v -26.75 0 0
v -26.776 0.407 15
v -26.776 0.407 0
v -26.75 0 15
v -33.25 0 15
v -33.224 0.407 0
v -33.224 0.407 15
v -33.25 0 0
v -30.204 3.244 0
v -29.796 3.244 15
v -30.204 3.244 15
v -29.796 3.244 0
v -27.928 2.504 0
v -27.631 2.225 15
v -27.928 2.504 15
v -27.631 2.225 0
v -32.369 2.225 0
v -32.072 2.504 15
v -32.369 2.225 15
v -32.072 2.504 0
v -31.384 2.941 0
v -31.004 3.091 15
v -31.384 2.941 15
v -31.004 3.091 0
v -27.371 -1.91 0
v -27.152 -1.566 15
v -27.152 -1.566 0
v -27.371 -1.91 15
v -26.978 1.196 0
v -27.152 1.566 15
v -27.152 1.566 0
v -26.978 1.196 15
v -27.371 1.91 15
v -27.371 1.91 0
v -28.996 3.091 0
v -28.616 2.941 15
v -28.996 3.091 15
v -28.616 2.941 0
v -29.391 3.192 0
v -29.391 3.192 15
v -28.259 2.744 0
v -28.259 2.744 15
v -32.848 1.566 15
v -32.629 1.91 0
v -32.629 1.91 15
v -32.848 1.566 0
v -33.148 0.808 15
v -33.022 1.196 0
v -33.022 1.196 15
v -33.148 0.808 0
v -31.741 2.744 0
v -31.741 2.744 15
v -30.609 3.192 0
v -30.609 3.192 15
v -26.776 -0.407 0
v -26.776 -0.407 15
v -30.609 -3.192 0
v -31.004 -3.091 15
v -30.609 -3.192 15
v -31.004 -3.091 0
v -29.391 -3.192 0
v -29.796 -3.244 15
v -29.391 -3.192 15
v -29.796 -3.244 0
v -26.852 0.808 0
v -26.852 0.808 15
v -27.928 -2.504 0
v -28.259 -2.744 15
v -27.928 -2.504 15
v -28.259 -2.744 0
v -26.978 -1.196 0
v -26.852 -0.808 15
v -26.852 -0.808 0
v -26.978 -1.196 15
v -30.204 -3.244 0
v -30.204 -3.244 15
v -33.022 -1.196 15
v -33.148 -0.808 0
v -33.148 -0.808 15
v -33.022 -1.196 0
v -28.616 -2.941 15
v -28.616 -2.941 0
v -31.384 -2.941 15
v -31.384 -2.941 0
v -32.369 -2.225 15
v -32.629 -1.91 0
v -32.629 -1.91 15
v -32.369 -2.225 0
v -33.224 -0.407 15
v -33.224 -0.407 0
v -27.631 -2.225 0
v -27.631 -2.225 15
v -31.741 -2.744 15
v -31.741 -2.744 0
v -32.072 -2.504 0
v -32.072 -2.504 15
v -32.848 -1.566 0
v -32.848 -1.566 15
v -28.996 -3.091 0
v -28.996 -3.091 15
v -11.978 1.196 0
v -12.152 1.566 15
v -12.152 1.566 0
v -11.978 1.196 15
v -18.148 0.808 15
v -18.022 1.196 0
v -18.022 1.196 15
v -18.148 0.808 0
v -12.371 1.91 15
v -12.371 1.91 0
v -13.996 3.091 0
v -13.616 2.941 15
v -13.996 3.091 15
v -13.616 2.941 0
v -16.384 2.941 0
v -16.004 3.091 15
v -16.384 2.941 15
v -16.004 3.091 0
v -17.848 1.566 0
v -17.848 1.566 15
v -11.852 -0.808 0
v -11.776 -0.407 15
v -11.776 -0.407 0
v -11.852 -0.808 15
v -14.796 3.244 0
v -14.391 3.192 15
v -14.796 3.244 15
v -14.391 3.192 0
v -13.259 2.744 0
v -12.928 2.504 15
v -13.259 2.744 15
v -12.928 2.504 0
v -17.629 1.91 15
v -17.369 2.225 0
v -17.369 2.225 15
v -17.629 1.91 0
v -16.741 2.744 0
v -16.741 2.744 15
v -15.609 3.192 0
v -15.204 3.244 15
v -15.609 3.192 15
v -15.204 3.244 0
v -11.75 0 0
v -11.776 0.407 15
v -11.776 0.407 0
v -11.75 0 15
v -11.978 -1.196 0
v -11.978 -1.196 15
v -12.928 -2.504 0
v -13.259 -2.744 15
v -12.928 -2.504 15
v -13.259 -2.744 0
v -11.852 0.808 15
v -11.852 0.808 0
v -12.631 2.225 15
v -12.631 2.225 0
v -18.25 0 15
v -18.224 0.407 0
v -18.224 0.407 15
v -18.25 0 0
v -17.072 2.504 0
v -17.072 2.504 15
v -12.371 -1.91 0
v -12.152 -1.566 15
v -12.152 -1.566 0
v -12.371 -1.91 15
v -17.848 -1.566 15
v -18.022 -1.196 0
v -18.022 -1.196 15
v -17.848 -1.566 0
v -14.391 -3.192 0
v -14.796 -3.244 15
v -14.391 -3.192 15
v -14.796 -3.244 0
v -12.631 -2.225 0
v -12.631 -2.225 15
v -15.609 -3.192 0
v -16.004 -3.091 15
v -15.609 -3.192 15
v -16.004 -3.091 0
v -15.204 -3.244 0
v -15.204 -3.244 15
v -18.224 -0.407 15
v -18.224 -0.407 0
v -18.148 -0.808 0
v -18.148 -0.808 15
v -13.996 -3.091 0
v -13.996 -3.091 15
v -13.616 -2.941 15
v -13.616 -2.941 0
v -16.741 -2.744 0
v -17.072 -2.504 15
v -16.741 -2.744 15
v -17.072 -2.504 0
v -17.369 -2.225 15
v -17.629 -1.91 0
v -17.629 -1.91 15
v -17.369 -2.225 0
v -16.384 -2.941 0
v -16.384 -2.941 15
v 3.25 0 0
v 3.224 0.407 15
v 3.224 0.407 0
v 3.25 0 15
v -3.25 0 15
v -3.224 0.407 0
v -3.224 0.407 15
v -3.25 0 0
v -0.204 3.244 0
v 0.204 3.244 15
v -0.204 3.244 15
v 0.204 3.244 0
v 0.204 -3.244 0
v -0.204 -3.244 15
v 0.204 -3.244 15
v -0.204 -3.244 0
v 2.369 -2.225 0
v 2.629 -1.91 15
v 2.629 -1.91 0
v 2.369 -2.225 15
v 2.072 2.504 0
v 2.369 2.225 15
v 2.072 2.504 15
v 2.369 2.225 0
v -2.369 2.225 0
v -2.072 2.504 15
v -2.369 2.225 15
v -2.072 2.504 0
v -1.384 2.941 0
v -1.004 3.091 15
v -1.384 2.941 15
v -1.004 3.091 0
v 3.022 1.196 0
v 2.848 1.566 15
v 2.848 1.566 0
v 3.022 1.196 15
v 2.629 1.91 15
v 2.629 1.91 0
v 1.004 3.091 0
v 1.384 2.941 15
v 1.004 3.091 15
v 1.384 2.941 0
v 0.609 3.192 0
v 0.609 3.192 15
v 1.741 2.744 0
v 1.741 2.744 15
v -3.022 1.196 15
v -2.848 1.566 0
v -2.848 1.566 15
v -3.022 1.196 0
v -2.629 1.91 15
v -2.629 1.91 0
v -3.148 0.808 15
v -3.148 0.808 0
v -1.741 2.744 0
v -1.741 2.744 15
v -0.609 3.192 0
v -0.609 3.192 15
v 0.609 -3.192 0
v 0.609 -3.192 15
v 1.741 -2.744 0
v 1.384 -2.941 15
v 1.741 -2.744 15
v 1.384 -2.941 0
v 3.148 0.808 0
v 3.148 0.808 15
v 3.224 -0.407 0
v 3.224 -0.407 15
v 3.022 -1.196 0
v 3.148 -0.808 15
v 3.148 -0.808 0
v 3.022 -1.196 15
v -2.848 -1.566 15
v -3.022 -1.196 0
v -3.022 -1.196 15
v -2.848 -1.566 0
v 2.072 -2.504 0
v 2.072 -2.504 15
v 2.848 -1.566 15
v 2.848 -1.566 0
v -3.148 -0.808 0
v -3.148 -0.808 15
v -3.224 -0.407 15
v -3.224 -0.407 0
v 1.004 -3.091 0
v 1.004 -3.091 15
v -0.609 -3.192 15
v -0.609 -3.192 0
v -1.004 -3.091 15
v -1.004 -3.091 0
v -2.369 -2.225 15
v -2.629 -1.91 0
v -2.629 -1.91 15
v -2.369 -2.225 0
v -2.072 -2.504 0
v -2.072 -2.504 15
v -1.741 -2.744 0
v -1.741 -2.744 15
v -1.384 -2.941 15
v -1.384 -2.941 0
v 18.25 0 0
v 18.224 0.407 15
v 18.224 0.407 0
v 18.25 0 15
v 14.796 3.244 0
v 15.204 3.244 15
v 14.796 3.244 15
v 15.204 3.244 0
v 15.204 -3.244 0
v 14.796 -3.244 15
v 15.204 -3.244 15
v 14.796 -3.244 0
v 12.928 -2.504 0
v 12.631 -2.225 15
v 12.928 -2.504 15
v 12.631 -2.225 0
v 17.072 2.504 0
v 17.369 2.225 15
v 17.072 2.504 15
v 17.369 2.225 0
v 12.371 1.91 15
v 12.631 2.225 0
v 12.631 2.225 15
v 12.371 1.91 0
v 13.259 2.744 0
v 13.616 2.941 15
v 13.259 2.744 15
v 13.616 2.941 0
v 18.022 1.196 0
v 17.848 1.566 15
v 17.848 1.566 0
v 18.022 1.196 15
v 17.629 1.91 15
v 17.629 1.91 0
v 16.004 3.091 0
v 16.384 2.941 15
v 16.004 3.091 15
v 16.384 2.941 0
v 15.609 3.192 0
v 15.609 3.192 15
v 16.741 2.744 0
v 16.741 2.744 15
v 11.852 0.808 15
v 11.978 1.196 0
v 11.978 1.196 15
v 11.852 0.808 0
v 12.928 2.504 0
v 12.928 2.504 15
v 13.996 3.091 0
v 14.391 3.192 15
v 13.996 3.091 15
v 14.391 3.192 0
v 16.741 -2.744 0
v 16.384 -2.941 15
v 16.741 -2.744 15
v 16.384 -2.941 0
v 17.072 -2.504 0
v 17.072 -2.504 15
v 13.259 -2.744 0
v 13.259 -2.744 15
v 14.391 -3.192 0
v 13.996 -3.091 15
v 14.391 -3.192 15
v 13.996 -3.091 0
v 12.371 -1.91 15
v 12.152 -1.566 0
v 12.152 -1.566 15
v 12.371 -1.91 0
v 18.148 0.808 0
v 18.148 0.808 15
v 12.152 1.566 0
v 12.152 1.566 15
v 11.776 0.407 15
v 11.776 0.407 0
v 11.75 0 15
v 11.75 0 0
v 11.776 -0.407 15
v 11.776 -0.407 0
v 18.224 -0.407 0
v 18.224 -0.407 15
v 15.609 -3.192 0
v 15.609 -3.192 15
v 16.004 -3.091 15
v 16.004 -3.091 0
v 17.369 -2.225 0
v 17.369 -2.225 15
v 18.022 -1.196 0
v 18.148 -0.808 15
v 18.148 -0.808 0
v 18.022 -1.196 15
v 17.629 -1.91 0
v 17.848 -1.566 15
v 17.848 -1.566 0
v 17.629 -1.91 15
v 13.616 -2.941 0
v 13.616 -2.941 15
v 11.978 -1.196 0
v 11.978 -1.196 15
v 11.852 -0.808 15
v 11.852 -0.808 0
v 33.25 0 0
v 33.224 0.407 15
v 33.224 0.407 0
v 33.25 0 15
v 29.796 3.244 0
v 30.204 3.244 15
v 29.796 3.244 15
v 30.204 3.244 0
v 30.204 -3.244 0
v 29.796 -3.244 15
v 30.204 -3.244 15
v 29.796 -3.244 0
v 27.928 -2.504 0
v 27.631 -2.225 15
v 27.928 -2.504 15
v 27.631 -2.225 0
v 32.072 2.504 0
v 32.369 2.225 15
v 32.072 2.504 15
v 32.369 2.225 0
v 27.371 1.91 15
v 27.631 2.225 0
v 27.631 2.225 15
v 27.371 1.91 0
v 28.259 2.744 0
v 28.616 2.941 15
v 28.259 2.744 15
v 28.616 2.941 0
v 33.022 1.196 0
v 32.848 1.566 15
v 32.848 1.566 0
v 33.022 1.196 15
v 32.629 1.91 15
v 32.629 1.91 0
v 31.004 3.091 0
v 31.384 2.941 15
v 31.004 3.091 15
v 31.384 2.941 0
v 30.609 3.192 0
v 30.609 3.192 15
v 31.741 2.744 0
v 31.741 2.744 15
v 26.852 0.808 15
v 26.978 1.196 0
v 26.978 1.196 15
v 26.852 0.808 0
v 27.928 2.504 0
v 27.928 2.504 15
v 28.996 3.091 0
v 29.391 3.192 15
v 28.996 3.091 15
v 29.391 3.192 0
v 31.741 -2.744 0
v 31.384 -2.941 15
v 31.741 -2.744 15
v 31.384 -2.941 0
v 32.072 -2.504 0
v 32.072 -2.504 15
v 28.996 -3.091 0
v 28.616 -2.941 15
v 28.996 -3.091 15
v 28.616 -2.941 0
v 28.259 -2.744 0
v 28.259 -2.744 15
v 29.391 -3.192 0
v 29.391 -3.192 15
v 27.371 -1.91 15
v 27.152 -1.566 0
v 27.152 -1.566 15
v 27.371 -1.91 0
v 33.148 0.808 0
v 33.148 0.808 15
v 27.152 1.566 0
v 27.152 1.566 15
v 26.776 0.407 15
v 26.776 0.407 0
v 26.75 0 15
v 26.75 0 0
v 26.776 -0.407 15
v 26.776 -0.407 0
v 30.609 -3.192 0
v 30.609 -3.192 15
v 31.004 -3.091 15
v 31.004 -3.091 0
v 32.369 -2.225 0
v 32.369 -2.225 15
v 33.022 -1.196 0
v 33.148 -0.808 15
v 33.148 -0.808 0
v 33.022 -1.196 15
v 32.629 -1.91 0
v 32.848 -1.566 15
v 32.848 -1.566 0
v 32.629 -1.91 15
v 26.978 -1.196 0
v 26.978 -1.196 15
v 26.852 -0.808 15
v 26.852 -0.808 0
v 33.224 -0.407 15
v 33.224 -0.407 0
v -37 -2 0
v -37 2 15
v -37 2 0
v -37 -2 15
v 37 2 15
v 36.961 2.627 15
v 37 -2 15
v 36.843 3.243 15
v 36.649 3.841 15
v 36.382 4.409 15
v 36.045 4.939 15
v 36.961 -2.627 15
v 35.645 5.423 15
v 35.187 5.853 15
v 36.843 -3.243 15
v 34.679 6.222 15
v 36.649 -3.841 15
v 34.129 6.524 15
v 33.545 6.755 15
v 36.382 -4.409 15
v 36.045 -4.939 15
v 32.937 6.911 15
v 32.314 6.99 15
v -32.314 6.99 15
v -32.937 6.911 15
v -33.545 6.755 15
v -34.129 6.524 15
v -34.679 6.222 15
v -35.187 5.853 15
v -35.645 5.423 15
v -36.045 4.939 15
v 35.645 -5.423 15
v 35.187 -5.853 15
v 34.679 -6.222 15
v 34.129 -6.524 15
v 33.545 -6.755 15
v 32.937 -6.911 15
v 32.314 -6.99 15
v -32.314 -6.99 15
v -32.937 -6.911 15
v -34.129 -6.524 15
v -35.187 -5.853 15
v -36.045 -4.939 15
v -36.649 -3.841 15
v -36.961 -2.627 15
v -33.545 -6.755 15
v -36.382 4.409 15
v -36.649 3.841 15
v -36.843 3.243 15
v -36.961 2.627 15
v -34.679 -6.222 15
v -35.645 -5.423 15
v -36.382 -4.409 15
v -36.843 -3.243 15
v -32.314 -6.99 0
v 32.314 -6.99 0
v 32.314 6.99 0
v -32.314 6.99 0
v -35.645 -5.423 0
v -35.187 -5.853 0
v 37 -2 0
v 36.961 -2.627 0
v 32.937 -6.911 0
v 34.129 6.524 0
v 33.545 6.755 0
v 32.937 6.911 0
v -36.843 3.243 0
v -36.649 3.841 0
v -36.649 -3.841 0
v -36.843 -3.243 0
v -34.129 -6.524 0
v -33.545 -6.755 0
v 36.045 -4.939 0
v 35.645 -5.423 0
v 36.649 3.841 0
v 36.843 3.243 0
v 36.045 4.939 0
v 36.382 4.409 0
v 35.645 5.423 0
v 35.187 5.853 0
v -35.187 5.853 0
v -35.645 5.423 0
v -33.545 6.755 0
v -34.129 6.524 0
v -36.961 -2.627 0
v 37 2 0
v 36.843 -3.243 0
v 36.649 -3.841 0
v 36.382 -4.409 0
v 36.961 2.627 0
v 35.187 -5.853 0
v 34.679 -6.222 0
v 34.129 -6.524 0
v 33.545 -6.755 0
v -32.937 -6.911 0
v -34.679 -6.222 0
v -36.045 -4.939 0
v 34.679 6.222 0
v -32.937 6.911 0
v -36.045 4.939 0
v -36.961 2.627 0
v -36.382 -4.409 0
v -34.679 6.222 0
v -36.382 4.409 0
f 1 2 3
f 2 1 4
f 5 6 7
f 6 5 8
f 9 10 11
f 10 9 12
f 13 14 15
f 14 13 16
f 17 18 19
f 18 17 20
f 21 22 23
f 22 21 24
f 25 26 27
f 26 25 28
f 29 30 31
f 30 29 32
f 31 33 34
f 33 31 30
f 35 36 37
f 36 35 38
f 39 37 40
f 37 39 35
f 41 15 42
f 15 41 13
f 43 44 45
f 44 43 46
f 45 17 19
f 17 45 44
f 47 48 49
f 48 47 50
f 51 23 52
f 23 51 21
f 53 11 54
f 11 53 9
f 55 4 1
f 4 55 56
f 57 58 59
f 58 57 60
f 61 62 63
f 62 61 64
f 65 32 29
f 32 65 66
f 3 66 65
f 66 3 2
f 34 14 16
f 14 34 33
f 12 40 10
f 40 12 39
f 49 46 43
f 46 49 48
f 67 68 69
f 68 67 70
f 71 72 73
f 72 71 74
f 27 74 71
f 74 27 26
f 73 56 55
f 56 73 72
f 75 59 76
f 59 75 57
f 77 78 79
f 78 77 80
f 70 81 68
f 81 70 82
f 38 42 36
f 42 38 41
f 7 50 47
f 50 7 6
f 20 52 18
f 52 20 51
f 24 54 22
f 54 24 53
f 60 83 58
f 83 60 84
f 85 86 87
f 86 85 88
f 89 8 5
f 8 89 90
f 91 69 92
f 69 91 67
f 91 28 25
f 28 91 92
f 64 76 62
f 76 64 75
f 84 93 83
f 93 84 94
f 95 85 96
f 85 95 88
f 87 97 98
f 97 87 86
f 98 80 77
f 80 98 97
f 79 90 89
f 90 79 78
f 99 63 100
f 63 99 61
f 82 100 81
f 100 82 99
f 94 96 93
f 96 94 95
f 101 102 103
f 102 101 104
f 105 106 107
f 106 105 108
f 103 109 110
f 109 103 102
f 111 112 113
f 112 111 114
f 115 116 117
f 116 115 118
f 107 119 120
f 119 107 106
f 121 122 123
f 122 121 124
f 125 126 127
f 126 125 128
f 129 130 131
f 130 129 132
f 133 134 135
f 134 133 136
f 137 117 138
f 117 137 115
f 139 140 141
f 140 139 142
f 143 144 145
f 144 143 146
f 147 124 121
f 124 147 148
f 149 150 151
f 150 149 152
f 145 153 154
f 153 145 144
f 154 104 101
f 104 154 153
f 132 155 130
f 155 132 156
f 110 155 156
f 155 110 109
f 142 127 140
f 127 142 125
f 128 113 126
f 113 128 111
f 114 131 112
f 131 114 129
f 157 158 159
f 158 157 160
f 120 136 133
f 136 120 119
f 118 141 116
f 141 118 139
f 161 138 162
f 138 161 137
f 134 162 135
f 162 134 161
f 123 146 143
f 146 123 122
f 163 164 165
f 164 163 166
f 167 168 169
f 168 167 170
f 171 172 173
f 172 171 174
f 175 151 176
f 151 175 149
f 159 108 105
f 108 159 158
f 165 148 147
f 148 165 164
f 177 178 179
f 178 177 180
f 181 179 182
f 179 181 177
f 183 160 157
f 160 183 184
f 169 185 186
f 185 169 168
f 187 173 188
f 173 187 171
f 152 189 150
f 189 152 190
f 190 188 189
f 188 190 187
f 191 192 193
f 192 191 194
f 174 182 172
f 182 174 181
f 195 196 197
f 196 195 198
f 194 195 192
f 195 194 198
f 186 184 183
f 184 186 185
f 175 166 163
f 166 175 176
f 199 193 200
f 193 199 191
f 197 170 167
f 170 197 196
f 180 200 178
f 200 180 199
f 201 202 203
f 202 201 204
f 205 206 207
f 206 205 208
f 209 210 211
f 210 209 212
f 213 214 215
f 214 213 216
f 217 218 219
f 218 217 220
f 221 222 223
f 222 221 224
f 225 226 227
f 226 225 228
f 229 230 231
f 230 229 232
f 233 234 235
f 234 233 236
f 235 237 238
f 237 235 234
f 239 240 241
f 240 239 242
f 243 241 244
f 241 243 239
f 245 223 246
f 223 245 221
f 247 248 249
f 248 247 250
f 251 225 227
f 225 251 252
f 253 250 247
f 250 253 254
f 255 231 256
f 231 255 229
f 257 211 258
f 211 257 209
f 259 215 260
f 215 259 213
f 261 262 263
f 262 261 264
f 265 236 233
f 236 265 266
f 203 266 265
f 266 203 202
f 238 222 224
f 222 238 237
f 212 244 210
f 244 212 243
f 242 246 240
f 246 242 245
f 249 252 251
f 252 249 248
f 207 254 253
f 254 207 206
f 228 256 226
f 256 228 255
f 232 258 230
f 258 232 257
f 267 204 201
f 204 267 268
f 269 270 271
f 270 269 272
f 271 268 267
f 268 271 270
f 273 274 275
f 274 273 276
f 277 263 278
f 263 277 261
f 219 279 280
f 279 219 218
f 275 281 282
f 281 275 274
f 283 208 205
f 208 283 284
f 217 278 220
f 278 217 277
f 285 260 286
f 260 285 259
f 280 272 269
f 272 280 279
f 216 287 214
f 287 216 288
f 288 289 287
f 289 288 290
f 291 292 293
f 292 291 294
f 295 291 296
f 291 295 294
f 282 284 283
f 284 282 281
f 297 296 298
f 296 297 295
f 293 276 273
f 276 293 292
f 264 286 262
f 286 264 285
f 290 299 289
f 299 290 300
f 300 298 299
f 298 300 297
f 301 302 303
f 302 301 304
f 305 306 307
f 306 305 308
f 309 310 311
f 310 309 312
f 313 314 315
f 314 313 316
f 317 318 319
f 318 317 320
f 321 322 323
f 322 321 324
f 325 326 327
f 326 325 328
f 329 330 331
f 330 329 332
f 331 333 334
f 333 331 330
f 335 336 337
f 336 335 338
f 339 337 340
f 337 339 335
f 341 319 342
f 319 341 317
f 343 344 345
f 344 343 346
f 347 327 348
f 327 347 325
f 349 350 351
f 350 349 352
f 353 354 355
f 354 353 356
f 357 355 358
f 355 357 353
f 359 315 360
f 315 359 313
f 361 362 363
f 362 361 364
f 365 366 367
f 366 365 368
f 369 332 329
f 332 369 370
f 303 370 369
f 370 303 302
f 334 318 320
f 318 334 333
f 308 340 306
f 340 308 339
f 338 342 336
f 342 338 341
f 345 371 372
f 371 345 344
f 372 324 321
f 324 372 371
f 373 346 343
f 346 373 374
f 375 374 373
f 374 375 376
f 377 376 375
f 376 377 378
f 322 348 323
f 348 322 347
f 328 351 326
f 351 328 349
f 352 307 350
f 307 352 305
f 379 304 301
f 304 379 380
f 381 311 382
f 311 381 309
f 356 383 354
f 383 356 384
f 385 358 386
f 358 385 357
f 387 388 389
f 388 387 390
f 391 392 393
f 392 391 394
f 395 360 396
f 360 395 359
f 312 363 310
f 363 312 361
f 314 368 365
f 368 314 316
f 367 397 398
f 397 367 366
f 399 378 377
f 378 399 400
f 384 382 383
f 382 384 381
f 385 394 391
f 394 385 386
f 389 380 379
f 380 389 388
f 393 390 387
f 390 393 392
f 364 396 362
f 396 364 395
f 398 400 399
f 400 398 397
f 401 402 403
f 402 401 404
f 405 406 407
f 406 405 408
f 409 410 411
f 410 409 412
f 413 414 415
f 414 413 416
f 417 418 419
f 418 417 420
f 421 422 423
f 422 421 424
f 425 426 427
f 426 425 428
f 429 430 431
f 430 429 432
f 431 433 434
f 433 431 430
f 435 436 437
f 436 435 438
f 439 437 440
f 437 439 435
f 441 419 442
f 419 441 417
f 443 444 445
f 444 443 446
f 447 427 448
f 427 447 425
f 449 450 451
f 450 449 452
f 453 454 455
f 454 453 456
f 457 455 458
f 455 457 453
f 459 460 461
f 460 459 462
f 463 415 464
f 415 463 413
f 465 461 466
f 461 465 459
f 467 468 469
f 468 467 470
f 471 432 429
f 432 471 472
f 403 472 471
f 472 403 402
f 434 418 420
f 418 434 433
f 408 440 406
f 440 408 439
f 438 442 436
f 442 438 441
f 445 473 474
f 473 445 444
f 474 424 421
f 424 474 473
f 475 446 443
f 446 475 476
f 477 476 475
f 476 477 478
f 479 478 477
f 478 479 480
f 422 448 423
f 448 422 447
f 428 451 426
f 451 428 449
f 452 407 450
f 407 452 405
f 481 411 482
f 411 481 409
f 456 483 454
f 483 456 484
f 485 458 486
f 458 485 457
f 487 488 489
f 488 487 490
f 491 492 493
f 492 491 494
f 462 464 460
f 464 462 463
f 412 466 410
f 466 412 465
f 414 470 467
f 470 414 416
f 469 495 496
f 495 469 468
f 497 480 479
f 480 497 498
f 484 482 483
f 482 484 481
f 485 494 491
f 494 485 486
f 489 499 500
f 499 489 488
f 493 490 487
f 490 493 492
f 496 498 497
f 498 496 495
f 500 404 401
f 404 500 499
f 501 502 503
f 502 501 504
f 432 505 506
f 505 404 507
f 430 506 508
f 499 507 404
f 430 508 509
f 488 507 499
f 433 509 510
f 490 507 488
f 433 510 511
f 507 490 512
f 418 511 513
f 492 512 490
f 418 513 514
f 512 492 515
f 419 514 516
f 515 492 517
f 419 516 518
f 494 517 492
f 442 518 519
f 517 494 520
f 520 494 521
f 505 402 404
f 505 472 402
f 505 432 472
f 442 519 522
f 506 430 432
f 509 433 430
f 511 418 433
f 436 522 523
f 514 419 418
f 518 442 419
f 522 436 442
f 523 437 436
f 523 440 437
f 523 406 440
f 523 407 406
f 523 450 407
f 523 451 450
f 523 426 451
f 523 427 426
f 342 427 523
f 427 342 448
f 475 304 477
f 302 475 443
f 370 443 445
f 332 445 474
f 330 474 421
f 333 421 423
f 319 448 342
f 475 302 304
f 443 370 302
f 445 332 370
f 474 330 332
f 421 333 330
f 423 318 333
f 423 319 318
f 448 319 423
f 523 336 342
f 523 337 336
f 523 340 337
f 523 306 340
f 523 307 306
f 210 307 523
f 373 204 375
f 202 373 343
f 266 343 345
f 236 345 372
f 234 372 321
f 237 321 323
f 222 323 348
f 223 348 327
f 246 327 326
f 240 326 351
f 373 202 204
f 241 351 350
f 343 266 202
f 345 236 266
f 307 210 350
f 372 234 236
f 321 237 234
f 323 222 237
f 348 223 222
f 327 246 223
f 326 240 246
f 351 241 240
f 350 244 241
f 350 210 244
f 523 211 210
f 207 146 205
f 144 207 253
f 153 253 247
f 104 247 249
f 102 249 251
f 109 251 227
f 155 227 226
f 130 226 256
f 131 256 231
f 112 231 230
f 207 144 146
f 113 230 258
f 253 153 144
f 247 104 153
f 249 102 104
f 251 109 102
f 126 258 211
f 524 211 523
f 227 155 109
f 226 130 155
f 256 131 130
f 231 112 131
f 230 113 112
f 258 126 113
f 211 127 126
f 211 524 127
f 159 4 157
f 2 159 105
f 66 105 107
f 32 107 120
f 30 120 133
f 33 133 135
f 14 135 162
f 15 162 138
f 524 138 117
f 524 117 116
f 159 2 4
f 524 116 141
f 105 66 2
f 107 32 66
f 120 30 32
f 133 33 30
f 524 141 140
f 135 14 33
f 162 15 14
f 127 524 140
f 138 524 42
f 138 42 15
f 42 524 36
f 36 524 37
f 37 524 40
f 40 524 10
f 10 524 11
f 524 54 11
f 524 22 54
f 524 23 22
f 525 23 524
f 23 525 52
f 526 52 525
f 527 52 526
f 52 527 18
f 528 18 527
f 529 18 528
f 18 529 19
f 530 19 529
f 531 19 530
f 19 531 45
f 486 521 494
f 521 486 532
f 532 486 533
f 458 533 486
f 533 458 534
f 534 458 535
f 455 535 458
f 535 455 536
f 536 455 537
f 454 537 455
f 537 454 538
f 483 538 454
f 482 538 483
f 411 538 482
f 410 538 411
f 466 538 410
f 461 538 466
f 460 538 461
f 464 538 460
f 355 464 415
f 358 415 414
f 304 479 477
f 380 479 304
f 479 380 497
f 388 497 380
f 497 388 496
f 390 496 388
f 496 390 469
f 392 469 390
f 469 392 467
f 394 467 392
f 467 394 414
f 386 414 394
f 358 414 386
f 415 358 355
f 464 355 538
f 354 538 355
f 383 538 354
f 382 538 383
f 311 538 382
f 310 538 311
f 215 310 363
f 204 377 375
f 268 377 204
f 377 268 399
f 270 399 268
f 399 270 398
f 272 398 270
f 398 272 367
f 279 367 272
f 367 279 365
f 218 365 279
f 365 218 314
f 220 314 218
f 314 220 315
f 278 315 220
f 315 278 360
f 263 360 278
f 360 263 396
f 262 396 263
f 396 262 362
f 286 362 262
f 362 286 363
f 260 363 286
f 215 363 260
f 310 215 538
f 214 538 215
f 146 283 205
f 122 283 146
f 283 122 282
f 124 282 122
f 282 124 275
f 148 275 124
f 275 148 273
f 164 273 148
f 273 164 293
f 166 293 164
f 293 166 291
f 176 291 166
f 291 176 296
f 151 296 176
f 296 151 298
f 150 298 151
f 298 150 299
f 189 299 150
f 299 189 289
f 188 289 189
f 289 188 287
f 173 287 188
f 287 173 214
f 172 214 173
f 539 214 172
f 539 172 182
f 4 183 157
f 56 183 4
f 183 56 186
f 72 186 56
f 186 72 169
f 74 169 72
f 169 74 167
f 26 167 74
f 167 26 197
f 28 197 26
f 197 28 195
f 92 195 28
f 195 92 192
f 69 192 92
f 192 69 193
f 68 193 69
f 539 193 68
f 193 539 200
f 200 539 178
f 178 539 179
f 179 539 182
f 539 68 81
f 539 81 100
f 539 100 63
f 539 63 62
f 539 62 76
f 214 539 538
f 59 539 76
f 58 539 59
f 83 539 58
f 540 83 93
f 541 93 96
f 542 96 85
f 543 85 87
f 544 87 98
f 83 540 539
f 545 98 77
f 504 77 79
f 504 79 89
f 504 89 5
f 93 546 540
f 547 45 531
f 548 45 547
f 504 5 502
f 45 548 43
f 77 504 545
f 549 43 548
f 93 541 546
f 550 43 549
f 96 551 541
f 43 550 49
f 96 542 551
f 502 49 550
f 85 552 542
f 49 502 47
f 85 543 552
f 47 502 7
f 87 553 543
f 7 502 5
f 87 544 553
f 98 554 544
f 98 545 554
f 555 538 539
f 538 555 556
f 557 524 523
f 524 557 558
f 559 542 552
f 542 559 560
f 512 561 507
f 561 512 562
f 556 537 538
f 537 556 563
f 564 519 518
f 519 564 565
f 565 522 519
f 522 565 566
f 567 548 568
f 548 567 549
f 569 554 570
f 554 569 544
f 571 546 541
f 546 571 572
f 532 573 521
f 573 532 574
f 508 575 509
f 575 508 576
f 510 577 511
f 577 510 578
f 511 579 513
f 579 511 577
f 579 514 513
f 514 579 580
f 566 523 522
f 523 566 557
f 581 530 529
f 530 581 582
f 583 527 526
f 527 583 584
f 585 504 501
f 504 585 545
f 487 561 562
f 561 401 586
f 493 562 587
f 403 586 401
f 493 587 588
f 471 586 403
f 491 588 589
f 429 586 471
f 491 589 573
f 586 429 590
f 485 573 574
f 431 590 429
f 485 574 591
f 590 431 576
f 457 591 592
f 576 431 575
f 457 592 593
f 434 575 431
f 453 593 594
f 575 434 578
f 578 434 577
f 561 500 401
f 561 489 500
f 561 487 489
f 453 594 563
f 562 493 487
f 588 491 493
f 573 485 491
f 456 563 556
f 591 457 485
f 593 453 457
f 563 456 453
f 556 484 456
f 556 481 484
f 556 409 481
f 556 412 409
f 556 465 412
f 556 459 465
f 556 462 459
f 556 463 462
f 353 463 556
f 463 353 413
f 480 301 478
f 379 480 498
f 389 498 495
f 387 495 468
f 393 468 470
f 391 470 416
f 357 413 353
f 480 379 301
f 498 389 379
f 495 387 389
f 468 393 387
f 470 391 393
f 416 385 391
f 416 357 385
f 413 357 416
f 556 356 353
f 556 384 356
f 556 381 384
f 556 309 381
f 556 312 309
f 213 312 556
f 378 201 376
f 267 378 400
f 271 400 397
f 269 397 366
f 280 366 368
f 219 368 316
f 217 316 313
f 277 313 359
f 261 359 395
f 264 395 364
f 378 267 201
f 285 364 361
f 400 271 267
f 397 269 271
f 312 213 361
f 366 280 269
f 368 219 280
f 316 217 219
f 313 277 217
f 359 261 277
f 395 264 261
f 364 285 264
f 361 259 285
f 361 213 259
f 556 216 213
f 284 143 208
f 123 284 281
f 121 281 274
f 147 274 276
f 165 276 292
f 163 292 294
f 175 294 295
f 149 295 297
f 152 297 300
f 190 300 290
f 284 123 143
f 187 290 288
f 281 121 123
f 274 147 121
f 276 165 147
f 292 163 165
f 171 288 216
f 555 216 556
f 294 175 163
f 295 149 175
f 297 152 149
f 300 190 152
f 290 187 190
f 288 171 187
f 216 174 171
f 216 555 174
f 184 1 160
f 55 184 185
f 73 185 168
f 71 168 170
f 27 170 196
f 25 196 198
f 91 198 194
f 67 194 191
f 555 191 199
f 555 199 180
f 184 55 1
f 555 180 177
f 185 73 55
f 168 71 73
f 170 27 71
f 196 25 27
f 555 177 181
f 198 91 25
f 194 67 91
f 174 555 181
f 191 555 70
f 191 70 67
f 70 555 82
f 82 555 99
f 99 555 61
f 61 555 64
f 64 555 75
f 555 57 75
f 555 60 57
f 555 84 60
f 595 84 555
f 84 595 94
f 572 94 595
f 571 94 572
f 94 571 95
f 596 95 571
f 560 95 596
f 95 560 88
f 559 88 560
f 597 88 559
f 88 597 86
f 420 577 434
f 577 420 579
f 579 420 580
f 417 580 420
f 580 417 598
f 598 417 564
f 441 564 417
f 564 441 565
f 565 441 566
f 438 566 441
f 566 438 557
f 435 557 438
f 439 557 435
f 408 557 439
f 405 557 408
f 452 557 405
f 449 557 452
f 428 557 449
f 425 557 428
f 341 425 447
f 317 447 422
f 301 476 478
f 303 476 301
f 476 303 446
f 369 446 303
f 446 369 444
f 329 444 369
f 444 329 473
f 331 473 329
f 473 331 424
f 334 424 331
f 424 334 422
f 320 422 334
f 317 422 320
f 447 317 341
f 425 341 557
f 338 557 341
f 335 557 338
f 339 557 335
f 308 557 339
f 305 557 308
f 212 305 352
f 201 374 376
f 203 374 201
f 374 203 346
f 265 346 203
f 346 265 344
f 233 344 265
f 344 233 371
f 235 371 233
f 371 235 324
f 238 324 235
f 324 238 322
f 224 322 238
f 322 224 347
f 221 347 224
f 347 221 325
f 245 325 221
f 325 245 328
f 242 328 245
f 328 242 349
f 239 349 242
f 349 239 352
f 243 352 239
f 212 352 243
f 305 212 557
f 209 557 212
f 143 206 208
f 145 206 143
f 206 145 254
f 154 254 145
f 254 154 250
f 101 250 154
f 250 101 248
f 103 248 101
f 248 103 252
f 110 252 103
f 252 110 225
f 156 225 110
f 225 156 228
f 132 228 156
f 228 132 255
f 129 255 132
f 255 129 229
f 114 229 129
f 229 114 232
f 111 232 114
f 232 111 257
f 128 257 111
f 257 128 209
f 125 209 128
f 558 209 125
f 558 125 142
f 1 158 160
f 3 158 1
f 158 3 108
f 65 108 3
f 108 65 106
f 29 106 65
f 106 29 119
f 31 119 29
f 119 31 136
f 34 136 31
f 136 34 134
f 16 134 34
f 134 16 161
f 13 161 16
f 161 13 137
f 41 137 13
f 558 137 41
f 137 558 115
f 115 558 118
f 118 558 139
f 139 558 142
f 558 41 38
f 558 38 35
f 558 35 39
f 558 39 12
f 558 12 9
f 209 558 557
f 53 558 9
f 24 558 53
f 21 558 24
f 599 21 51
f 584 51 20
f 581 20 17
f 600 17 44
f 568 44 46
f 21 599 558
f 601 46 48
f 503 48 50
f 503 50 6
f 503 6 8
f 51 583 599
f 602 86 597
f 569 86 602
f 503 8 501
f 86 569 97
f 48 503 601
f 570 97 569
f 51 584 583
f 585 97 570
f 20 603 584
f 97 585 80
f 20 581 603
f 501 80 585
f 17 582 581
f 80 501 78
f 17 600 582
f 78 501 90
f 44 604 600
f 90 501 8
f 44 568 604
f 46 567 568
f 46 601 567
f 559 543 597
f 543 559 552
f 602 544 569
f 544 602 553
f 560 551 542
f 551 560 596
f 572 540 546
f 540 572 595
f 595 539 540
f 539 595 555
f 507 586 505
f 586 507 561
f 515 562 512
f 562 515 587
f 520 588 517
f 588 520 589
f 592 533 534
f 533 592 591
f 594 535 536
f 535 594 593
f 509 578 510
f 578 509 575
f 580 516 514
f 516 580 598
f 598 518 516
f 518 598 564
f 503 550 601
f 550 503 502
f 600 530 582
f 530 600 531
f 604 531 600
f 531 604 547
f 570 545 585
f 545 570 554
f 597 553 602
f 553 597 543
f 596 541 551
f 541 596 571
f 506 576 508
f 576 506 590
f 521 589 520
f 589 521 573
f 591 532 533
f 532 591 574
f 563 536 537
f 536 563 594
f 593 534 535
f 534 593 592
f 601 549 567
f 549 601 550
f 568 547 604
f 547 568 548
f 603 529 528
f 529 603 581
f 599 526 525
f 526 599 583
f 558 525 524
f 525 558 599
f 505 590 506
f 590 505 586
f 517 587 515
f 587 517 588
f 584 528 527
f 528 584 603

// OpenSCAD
$fn = 50;


difference() {
	union() {
		hull() {
			translate(v = [-32.0000000000, 2.0000000000, 0]) {
				cylinder(h = 15, r = 5);
			}
			translate(v = [32.0000000000, 2.0000000000, 0]) {
				cylinder(h = 15, r = 5);
			}
			translate(v = [-32.0000000000, -2.0000000000, 0]) {
				cylinder(h = 15, r = 5);
			}
			translate(v = [32.0000000000, -2.0000000000, 0]) {
				cylinder(h = 15, r = 5);
			}
		}
	}
	union() {
		translate(v = [-30.0000000000, 0.0000000000, 0]) {
			translate(v = [0, 0, -100]) {
				cylinder(h = 200, r = 3.2500000000);
			}
		}
		translate(v = [-15.0000000000, 0.0000000000, 0]) {
			translate(v = [0, 0, -100]) {
				cylinder(h = 200, r = 3.2500000000);
			}
		}
		translate(v = [0, 0, -100]) {
			cylinder(h = 200, r = 3.2500000000);
		}
		translate(v = [15.0000000000, 0.0000000000, 0]) {
			translate(v = [0, 0, -100]) {
				cylinder(h = 200, r = 3.2500000000);
			}
		}
		translate(v = [30.0000000000, 0.0000000000, 0]) {
			translate(v = [0, 0, -100]) {
				cylinder(h = 200, r = 3.2500000000);
			}
		}
	}
}
